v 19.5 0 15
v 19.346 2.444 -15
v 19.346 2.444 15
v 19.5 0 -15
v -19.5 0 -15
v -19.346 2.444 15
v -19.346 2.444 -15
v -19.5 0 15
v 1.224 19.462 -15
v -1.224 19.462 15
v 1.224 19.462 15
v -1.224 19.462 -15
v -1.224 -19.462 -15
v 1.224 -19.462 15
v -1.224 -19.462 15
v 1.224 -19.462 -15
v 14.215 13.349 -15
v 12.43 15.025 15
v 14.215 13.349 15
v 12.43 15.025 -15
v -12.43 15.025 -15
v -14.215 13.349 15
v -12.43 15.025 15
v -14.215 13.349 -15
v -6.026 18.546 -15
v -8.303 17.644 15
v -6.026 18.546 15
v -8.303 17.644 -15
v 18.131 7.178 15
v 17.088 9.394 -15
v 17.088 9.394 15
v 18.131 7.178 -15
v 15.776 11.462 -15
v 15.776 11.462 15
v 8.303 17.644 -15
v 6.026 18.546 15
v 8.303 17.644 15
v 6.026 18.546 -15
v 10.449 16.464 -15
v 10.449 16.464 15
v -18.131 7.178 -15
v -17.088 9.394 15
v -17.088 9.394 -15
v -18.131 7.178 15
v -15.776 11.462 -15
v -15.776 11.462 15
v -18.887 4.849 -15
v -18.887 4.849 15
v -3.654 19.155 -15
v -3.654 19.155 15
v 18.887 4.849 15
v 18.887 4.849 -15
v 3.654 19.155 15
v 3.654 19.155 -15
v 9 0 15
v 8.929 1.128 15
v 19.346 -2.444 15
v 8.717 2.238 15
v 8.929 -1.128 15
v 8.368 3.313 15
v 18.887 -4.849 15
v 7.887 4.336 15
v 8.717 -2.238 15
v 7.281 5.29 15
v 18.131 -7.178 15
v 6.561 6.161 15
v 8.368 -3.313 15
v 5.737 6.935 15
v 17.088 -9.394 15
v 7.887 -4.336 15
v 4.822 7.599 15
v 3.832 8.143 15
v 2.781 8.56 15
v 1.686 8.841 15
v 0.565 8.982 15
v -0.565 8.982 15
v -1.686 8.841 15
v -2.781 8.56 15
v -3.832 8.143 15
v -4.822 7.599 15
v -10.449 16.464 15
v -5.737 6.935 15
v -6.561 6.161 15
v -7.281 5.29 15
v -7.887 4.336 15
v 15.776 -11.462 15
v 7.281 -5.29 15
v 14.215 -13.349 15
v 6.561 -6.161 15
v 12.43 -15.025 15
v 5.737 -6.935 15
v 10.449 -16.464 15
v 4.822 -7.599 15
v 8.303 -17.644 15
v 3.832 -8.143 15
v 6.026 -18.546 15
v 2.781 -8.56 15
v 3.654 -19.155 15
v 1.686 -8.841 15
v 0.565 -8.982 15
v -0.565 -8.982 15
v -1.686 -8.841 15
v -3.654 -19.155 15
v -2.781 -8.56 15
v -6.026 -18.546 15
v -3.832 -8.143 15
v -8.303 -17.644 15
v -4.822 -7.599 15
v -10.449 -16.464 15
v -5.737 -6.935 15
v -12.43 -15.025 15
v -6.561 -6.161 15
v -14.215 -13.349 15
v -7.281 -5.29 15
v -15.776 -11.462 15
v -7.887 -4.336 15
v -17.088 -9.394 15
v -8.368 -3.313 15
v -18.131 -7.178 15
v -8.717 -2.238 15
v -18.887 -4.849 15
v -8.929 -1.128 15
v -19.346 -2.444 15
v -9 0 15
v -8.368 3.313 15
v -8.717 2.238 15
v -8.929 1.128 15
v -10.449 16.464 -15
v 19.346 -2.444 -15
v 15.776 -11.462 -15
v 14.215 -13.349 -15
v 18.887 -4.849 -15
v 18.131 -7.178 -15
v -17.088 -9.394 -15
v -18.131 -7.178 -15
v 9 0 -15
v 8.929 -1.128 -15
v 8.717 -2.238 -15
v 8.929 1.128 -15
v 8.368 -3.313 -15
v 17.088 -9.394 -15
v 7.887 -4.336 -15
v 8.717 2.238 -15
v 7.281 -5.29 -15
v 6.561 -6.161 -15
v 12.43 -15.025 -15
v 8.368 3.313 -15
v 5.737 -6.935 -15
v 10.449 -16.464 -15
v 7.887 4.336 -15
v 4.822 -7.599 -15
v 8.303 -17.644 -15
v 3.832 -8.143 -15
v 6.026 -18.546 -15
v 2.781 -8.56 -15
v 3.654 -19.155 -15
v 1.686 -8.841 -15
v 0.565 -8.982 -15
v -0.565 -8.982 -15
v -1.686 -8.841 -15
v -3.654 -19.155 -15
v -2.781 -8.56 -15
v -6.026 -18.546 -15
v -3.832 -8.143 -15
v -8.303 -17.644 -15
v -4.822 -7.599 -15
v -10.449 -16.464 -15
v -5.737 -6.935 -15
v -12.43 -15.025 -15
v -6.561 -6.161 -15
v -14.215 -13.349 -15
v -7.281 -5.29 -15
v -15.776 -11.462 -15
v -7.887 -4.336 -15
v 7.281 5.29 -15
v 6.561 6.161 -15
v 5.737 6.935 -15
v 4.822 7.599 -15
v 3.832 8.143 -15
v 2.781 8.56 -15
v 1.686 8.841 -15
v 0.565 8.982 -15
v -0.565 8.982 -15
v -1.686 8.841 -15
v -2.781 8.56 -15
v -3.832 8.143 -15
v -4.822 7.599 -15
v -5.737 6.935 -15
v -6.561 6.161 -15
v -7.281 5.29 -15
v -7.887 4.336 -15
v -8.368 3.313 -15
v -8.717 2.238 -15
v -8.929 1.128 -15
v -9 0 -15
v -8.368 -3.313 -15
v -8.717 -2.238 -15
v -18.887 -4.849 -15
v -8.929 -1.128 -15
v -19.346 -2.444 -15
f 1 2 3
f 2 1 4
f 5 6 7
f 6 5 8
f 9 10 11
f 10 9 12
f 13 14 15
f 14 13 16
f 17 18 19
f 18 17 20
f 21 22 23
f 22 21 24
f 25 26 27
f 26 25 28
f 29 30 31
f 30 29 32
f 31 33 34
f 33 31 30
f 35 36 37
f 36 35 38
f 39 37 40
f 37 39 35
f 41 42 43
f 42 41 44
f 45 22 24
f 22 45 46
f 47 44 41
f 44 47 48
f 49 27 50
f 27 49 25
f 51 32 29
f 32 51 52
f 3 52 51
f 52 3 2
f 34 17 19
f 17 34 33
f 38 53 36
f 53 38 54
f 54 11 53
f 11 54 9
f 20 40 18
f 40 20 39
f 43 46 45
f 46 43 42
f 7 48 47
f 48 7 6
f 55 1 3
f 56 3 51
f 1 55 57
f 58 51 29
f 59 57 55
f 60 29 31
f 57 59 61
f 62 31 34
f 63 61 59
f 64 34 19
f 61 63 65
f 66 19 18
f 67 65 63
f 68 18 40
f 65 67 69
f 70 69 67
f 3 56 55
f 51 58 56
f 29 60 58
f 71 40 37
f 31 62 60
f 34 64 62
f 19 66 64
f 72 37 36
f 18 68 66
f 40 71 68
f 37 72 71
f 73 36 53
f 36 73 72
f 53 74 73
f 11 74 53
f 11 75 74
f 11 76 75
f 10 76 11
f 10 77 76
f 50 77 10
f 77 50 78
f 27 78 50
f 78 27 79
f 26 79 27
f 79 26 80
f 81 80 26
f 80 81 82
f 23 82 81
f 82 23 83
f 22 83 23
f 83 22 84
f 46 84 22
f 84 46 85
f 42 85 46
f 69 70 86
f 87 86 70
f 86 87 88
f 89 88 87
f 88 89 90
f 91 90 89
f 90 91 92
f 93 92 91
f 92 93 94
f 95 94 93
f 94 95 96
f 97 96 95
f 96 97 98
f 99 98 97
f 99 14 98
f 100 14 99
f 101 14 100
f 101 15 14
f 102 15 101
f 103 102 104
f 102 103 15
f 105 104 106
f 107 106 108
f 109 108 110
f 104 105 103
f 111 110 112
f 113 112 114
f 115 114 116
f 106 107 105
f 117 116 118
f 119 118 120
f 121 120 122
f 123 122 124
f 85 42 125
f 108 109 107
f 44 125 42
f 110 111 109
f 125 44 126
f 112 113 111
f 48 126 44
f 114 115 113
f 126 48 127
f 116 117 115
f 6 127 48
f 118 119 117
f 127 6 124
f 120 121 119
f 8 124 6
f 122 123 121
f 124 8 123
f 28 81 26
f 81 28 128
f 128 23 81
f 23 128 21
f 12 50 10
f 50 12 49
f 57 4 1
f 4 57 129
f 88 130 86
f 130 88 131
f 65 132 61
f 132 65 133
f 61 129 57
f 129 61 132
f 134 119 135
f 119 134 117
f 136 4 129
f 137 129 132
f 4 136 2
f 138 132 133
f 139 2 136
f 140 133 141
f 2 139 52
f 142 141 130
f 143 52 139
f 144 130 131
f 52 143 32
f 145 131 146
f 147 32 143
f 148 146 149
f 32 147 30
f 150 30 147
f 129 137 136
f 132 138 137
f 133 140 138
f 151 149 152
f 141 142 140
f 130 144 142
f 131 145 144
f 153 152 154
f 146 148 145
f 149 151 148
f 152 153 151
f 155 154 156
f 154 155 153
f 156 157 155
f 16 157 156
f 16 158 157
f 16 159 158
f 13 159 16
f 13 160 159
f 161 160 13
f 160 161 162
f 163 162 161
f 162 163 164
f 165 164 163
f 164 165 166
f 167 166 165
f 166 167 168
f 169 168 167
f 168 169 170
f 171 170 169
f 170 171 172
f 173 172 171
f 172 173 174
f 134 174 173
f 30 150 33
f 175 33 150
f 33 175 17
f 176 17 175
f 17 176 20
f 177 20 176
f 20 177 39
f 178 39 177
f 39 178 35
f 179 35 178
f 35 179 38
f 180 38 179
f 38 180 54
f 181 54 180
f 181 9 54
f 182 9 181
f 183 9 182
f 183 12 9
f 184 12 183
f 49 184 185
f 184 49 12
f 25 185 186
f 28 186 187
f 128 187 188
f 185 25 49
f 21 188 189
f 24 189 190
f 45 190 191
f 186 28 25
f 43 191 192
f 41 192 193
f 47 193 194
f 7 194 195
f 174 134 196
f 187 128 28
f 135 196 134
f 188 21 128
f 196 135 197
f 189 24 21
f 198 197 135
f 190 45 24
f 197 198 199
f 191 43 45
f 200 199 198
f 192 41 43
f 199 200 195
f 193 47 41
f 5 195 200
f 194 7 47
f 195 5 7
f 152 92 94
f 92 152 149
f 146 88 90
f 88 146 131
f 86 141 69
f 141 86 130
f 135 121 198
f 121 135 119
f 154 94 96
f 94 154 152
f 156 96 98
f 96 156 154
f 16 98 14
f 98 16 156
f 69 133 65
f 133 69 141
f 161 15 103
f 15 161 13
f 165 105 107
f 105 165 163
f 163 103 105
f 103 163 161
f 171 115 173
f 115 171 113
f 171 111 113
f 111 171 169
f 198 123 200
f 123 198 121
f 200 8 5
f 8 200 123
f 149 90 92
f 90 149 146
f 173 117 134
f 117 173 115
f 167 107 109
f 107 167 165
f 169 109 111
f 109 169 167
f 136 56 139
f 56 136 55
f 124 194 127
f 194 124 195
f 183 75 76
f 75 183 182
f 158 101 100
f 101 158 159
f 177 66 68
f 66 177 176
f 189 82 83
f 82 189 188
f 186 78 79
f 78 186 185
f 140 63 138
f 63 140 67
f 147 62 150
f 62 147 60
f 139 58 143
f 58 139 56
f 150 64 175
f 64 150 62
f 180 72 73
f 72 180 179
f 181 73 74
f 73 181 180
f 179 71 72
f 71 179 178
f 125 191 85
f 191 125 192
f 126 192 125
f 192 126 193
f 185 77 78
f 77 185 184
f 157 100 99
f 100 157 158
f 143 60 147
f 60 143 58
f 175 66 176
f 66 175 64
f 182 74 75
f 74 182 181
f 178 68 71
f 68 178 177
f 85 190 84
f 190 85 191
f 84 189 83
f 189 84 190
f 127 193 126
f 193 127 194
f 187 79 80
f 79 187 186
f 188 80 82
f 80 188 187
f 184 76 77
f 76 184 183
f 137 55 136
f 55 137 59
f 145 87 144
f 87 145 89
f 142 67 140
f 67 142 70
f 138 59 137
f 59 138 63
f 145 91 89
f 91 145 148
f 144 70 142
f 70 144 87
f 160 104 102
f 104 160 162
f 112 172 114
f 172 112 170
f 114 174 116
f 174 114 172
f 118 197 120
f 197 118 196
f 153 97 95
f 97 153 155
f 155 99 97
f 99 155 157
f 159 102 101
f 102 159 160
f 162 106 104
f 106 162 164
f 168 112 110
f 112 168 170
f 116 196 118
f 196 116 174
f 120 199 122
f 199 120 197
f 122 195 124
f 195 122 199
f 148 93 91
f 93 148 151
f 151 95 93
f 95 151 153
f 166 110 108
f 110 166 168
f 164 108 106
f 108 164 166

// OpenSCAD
$fn = 50;


difference() {
	union() {
		translate(v = [0, 0, -15.0000000000]) {
			cylinder(h = 30, r = 19.5000000000);
		}
	}
	union() {
		translate(v = [0, 0, -100.0000000000]) {
			cylinder(h = 200, r = 9);
		}
	}
}
